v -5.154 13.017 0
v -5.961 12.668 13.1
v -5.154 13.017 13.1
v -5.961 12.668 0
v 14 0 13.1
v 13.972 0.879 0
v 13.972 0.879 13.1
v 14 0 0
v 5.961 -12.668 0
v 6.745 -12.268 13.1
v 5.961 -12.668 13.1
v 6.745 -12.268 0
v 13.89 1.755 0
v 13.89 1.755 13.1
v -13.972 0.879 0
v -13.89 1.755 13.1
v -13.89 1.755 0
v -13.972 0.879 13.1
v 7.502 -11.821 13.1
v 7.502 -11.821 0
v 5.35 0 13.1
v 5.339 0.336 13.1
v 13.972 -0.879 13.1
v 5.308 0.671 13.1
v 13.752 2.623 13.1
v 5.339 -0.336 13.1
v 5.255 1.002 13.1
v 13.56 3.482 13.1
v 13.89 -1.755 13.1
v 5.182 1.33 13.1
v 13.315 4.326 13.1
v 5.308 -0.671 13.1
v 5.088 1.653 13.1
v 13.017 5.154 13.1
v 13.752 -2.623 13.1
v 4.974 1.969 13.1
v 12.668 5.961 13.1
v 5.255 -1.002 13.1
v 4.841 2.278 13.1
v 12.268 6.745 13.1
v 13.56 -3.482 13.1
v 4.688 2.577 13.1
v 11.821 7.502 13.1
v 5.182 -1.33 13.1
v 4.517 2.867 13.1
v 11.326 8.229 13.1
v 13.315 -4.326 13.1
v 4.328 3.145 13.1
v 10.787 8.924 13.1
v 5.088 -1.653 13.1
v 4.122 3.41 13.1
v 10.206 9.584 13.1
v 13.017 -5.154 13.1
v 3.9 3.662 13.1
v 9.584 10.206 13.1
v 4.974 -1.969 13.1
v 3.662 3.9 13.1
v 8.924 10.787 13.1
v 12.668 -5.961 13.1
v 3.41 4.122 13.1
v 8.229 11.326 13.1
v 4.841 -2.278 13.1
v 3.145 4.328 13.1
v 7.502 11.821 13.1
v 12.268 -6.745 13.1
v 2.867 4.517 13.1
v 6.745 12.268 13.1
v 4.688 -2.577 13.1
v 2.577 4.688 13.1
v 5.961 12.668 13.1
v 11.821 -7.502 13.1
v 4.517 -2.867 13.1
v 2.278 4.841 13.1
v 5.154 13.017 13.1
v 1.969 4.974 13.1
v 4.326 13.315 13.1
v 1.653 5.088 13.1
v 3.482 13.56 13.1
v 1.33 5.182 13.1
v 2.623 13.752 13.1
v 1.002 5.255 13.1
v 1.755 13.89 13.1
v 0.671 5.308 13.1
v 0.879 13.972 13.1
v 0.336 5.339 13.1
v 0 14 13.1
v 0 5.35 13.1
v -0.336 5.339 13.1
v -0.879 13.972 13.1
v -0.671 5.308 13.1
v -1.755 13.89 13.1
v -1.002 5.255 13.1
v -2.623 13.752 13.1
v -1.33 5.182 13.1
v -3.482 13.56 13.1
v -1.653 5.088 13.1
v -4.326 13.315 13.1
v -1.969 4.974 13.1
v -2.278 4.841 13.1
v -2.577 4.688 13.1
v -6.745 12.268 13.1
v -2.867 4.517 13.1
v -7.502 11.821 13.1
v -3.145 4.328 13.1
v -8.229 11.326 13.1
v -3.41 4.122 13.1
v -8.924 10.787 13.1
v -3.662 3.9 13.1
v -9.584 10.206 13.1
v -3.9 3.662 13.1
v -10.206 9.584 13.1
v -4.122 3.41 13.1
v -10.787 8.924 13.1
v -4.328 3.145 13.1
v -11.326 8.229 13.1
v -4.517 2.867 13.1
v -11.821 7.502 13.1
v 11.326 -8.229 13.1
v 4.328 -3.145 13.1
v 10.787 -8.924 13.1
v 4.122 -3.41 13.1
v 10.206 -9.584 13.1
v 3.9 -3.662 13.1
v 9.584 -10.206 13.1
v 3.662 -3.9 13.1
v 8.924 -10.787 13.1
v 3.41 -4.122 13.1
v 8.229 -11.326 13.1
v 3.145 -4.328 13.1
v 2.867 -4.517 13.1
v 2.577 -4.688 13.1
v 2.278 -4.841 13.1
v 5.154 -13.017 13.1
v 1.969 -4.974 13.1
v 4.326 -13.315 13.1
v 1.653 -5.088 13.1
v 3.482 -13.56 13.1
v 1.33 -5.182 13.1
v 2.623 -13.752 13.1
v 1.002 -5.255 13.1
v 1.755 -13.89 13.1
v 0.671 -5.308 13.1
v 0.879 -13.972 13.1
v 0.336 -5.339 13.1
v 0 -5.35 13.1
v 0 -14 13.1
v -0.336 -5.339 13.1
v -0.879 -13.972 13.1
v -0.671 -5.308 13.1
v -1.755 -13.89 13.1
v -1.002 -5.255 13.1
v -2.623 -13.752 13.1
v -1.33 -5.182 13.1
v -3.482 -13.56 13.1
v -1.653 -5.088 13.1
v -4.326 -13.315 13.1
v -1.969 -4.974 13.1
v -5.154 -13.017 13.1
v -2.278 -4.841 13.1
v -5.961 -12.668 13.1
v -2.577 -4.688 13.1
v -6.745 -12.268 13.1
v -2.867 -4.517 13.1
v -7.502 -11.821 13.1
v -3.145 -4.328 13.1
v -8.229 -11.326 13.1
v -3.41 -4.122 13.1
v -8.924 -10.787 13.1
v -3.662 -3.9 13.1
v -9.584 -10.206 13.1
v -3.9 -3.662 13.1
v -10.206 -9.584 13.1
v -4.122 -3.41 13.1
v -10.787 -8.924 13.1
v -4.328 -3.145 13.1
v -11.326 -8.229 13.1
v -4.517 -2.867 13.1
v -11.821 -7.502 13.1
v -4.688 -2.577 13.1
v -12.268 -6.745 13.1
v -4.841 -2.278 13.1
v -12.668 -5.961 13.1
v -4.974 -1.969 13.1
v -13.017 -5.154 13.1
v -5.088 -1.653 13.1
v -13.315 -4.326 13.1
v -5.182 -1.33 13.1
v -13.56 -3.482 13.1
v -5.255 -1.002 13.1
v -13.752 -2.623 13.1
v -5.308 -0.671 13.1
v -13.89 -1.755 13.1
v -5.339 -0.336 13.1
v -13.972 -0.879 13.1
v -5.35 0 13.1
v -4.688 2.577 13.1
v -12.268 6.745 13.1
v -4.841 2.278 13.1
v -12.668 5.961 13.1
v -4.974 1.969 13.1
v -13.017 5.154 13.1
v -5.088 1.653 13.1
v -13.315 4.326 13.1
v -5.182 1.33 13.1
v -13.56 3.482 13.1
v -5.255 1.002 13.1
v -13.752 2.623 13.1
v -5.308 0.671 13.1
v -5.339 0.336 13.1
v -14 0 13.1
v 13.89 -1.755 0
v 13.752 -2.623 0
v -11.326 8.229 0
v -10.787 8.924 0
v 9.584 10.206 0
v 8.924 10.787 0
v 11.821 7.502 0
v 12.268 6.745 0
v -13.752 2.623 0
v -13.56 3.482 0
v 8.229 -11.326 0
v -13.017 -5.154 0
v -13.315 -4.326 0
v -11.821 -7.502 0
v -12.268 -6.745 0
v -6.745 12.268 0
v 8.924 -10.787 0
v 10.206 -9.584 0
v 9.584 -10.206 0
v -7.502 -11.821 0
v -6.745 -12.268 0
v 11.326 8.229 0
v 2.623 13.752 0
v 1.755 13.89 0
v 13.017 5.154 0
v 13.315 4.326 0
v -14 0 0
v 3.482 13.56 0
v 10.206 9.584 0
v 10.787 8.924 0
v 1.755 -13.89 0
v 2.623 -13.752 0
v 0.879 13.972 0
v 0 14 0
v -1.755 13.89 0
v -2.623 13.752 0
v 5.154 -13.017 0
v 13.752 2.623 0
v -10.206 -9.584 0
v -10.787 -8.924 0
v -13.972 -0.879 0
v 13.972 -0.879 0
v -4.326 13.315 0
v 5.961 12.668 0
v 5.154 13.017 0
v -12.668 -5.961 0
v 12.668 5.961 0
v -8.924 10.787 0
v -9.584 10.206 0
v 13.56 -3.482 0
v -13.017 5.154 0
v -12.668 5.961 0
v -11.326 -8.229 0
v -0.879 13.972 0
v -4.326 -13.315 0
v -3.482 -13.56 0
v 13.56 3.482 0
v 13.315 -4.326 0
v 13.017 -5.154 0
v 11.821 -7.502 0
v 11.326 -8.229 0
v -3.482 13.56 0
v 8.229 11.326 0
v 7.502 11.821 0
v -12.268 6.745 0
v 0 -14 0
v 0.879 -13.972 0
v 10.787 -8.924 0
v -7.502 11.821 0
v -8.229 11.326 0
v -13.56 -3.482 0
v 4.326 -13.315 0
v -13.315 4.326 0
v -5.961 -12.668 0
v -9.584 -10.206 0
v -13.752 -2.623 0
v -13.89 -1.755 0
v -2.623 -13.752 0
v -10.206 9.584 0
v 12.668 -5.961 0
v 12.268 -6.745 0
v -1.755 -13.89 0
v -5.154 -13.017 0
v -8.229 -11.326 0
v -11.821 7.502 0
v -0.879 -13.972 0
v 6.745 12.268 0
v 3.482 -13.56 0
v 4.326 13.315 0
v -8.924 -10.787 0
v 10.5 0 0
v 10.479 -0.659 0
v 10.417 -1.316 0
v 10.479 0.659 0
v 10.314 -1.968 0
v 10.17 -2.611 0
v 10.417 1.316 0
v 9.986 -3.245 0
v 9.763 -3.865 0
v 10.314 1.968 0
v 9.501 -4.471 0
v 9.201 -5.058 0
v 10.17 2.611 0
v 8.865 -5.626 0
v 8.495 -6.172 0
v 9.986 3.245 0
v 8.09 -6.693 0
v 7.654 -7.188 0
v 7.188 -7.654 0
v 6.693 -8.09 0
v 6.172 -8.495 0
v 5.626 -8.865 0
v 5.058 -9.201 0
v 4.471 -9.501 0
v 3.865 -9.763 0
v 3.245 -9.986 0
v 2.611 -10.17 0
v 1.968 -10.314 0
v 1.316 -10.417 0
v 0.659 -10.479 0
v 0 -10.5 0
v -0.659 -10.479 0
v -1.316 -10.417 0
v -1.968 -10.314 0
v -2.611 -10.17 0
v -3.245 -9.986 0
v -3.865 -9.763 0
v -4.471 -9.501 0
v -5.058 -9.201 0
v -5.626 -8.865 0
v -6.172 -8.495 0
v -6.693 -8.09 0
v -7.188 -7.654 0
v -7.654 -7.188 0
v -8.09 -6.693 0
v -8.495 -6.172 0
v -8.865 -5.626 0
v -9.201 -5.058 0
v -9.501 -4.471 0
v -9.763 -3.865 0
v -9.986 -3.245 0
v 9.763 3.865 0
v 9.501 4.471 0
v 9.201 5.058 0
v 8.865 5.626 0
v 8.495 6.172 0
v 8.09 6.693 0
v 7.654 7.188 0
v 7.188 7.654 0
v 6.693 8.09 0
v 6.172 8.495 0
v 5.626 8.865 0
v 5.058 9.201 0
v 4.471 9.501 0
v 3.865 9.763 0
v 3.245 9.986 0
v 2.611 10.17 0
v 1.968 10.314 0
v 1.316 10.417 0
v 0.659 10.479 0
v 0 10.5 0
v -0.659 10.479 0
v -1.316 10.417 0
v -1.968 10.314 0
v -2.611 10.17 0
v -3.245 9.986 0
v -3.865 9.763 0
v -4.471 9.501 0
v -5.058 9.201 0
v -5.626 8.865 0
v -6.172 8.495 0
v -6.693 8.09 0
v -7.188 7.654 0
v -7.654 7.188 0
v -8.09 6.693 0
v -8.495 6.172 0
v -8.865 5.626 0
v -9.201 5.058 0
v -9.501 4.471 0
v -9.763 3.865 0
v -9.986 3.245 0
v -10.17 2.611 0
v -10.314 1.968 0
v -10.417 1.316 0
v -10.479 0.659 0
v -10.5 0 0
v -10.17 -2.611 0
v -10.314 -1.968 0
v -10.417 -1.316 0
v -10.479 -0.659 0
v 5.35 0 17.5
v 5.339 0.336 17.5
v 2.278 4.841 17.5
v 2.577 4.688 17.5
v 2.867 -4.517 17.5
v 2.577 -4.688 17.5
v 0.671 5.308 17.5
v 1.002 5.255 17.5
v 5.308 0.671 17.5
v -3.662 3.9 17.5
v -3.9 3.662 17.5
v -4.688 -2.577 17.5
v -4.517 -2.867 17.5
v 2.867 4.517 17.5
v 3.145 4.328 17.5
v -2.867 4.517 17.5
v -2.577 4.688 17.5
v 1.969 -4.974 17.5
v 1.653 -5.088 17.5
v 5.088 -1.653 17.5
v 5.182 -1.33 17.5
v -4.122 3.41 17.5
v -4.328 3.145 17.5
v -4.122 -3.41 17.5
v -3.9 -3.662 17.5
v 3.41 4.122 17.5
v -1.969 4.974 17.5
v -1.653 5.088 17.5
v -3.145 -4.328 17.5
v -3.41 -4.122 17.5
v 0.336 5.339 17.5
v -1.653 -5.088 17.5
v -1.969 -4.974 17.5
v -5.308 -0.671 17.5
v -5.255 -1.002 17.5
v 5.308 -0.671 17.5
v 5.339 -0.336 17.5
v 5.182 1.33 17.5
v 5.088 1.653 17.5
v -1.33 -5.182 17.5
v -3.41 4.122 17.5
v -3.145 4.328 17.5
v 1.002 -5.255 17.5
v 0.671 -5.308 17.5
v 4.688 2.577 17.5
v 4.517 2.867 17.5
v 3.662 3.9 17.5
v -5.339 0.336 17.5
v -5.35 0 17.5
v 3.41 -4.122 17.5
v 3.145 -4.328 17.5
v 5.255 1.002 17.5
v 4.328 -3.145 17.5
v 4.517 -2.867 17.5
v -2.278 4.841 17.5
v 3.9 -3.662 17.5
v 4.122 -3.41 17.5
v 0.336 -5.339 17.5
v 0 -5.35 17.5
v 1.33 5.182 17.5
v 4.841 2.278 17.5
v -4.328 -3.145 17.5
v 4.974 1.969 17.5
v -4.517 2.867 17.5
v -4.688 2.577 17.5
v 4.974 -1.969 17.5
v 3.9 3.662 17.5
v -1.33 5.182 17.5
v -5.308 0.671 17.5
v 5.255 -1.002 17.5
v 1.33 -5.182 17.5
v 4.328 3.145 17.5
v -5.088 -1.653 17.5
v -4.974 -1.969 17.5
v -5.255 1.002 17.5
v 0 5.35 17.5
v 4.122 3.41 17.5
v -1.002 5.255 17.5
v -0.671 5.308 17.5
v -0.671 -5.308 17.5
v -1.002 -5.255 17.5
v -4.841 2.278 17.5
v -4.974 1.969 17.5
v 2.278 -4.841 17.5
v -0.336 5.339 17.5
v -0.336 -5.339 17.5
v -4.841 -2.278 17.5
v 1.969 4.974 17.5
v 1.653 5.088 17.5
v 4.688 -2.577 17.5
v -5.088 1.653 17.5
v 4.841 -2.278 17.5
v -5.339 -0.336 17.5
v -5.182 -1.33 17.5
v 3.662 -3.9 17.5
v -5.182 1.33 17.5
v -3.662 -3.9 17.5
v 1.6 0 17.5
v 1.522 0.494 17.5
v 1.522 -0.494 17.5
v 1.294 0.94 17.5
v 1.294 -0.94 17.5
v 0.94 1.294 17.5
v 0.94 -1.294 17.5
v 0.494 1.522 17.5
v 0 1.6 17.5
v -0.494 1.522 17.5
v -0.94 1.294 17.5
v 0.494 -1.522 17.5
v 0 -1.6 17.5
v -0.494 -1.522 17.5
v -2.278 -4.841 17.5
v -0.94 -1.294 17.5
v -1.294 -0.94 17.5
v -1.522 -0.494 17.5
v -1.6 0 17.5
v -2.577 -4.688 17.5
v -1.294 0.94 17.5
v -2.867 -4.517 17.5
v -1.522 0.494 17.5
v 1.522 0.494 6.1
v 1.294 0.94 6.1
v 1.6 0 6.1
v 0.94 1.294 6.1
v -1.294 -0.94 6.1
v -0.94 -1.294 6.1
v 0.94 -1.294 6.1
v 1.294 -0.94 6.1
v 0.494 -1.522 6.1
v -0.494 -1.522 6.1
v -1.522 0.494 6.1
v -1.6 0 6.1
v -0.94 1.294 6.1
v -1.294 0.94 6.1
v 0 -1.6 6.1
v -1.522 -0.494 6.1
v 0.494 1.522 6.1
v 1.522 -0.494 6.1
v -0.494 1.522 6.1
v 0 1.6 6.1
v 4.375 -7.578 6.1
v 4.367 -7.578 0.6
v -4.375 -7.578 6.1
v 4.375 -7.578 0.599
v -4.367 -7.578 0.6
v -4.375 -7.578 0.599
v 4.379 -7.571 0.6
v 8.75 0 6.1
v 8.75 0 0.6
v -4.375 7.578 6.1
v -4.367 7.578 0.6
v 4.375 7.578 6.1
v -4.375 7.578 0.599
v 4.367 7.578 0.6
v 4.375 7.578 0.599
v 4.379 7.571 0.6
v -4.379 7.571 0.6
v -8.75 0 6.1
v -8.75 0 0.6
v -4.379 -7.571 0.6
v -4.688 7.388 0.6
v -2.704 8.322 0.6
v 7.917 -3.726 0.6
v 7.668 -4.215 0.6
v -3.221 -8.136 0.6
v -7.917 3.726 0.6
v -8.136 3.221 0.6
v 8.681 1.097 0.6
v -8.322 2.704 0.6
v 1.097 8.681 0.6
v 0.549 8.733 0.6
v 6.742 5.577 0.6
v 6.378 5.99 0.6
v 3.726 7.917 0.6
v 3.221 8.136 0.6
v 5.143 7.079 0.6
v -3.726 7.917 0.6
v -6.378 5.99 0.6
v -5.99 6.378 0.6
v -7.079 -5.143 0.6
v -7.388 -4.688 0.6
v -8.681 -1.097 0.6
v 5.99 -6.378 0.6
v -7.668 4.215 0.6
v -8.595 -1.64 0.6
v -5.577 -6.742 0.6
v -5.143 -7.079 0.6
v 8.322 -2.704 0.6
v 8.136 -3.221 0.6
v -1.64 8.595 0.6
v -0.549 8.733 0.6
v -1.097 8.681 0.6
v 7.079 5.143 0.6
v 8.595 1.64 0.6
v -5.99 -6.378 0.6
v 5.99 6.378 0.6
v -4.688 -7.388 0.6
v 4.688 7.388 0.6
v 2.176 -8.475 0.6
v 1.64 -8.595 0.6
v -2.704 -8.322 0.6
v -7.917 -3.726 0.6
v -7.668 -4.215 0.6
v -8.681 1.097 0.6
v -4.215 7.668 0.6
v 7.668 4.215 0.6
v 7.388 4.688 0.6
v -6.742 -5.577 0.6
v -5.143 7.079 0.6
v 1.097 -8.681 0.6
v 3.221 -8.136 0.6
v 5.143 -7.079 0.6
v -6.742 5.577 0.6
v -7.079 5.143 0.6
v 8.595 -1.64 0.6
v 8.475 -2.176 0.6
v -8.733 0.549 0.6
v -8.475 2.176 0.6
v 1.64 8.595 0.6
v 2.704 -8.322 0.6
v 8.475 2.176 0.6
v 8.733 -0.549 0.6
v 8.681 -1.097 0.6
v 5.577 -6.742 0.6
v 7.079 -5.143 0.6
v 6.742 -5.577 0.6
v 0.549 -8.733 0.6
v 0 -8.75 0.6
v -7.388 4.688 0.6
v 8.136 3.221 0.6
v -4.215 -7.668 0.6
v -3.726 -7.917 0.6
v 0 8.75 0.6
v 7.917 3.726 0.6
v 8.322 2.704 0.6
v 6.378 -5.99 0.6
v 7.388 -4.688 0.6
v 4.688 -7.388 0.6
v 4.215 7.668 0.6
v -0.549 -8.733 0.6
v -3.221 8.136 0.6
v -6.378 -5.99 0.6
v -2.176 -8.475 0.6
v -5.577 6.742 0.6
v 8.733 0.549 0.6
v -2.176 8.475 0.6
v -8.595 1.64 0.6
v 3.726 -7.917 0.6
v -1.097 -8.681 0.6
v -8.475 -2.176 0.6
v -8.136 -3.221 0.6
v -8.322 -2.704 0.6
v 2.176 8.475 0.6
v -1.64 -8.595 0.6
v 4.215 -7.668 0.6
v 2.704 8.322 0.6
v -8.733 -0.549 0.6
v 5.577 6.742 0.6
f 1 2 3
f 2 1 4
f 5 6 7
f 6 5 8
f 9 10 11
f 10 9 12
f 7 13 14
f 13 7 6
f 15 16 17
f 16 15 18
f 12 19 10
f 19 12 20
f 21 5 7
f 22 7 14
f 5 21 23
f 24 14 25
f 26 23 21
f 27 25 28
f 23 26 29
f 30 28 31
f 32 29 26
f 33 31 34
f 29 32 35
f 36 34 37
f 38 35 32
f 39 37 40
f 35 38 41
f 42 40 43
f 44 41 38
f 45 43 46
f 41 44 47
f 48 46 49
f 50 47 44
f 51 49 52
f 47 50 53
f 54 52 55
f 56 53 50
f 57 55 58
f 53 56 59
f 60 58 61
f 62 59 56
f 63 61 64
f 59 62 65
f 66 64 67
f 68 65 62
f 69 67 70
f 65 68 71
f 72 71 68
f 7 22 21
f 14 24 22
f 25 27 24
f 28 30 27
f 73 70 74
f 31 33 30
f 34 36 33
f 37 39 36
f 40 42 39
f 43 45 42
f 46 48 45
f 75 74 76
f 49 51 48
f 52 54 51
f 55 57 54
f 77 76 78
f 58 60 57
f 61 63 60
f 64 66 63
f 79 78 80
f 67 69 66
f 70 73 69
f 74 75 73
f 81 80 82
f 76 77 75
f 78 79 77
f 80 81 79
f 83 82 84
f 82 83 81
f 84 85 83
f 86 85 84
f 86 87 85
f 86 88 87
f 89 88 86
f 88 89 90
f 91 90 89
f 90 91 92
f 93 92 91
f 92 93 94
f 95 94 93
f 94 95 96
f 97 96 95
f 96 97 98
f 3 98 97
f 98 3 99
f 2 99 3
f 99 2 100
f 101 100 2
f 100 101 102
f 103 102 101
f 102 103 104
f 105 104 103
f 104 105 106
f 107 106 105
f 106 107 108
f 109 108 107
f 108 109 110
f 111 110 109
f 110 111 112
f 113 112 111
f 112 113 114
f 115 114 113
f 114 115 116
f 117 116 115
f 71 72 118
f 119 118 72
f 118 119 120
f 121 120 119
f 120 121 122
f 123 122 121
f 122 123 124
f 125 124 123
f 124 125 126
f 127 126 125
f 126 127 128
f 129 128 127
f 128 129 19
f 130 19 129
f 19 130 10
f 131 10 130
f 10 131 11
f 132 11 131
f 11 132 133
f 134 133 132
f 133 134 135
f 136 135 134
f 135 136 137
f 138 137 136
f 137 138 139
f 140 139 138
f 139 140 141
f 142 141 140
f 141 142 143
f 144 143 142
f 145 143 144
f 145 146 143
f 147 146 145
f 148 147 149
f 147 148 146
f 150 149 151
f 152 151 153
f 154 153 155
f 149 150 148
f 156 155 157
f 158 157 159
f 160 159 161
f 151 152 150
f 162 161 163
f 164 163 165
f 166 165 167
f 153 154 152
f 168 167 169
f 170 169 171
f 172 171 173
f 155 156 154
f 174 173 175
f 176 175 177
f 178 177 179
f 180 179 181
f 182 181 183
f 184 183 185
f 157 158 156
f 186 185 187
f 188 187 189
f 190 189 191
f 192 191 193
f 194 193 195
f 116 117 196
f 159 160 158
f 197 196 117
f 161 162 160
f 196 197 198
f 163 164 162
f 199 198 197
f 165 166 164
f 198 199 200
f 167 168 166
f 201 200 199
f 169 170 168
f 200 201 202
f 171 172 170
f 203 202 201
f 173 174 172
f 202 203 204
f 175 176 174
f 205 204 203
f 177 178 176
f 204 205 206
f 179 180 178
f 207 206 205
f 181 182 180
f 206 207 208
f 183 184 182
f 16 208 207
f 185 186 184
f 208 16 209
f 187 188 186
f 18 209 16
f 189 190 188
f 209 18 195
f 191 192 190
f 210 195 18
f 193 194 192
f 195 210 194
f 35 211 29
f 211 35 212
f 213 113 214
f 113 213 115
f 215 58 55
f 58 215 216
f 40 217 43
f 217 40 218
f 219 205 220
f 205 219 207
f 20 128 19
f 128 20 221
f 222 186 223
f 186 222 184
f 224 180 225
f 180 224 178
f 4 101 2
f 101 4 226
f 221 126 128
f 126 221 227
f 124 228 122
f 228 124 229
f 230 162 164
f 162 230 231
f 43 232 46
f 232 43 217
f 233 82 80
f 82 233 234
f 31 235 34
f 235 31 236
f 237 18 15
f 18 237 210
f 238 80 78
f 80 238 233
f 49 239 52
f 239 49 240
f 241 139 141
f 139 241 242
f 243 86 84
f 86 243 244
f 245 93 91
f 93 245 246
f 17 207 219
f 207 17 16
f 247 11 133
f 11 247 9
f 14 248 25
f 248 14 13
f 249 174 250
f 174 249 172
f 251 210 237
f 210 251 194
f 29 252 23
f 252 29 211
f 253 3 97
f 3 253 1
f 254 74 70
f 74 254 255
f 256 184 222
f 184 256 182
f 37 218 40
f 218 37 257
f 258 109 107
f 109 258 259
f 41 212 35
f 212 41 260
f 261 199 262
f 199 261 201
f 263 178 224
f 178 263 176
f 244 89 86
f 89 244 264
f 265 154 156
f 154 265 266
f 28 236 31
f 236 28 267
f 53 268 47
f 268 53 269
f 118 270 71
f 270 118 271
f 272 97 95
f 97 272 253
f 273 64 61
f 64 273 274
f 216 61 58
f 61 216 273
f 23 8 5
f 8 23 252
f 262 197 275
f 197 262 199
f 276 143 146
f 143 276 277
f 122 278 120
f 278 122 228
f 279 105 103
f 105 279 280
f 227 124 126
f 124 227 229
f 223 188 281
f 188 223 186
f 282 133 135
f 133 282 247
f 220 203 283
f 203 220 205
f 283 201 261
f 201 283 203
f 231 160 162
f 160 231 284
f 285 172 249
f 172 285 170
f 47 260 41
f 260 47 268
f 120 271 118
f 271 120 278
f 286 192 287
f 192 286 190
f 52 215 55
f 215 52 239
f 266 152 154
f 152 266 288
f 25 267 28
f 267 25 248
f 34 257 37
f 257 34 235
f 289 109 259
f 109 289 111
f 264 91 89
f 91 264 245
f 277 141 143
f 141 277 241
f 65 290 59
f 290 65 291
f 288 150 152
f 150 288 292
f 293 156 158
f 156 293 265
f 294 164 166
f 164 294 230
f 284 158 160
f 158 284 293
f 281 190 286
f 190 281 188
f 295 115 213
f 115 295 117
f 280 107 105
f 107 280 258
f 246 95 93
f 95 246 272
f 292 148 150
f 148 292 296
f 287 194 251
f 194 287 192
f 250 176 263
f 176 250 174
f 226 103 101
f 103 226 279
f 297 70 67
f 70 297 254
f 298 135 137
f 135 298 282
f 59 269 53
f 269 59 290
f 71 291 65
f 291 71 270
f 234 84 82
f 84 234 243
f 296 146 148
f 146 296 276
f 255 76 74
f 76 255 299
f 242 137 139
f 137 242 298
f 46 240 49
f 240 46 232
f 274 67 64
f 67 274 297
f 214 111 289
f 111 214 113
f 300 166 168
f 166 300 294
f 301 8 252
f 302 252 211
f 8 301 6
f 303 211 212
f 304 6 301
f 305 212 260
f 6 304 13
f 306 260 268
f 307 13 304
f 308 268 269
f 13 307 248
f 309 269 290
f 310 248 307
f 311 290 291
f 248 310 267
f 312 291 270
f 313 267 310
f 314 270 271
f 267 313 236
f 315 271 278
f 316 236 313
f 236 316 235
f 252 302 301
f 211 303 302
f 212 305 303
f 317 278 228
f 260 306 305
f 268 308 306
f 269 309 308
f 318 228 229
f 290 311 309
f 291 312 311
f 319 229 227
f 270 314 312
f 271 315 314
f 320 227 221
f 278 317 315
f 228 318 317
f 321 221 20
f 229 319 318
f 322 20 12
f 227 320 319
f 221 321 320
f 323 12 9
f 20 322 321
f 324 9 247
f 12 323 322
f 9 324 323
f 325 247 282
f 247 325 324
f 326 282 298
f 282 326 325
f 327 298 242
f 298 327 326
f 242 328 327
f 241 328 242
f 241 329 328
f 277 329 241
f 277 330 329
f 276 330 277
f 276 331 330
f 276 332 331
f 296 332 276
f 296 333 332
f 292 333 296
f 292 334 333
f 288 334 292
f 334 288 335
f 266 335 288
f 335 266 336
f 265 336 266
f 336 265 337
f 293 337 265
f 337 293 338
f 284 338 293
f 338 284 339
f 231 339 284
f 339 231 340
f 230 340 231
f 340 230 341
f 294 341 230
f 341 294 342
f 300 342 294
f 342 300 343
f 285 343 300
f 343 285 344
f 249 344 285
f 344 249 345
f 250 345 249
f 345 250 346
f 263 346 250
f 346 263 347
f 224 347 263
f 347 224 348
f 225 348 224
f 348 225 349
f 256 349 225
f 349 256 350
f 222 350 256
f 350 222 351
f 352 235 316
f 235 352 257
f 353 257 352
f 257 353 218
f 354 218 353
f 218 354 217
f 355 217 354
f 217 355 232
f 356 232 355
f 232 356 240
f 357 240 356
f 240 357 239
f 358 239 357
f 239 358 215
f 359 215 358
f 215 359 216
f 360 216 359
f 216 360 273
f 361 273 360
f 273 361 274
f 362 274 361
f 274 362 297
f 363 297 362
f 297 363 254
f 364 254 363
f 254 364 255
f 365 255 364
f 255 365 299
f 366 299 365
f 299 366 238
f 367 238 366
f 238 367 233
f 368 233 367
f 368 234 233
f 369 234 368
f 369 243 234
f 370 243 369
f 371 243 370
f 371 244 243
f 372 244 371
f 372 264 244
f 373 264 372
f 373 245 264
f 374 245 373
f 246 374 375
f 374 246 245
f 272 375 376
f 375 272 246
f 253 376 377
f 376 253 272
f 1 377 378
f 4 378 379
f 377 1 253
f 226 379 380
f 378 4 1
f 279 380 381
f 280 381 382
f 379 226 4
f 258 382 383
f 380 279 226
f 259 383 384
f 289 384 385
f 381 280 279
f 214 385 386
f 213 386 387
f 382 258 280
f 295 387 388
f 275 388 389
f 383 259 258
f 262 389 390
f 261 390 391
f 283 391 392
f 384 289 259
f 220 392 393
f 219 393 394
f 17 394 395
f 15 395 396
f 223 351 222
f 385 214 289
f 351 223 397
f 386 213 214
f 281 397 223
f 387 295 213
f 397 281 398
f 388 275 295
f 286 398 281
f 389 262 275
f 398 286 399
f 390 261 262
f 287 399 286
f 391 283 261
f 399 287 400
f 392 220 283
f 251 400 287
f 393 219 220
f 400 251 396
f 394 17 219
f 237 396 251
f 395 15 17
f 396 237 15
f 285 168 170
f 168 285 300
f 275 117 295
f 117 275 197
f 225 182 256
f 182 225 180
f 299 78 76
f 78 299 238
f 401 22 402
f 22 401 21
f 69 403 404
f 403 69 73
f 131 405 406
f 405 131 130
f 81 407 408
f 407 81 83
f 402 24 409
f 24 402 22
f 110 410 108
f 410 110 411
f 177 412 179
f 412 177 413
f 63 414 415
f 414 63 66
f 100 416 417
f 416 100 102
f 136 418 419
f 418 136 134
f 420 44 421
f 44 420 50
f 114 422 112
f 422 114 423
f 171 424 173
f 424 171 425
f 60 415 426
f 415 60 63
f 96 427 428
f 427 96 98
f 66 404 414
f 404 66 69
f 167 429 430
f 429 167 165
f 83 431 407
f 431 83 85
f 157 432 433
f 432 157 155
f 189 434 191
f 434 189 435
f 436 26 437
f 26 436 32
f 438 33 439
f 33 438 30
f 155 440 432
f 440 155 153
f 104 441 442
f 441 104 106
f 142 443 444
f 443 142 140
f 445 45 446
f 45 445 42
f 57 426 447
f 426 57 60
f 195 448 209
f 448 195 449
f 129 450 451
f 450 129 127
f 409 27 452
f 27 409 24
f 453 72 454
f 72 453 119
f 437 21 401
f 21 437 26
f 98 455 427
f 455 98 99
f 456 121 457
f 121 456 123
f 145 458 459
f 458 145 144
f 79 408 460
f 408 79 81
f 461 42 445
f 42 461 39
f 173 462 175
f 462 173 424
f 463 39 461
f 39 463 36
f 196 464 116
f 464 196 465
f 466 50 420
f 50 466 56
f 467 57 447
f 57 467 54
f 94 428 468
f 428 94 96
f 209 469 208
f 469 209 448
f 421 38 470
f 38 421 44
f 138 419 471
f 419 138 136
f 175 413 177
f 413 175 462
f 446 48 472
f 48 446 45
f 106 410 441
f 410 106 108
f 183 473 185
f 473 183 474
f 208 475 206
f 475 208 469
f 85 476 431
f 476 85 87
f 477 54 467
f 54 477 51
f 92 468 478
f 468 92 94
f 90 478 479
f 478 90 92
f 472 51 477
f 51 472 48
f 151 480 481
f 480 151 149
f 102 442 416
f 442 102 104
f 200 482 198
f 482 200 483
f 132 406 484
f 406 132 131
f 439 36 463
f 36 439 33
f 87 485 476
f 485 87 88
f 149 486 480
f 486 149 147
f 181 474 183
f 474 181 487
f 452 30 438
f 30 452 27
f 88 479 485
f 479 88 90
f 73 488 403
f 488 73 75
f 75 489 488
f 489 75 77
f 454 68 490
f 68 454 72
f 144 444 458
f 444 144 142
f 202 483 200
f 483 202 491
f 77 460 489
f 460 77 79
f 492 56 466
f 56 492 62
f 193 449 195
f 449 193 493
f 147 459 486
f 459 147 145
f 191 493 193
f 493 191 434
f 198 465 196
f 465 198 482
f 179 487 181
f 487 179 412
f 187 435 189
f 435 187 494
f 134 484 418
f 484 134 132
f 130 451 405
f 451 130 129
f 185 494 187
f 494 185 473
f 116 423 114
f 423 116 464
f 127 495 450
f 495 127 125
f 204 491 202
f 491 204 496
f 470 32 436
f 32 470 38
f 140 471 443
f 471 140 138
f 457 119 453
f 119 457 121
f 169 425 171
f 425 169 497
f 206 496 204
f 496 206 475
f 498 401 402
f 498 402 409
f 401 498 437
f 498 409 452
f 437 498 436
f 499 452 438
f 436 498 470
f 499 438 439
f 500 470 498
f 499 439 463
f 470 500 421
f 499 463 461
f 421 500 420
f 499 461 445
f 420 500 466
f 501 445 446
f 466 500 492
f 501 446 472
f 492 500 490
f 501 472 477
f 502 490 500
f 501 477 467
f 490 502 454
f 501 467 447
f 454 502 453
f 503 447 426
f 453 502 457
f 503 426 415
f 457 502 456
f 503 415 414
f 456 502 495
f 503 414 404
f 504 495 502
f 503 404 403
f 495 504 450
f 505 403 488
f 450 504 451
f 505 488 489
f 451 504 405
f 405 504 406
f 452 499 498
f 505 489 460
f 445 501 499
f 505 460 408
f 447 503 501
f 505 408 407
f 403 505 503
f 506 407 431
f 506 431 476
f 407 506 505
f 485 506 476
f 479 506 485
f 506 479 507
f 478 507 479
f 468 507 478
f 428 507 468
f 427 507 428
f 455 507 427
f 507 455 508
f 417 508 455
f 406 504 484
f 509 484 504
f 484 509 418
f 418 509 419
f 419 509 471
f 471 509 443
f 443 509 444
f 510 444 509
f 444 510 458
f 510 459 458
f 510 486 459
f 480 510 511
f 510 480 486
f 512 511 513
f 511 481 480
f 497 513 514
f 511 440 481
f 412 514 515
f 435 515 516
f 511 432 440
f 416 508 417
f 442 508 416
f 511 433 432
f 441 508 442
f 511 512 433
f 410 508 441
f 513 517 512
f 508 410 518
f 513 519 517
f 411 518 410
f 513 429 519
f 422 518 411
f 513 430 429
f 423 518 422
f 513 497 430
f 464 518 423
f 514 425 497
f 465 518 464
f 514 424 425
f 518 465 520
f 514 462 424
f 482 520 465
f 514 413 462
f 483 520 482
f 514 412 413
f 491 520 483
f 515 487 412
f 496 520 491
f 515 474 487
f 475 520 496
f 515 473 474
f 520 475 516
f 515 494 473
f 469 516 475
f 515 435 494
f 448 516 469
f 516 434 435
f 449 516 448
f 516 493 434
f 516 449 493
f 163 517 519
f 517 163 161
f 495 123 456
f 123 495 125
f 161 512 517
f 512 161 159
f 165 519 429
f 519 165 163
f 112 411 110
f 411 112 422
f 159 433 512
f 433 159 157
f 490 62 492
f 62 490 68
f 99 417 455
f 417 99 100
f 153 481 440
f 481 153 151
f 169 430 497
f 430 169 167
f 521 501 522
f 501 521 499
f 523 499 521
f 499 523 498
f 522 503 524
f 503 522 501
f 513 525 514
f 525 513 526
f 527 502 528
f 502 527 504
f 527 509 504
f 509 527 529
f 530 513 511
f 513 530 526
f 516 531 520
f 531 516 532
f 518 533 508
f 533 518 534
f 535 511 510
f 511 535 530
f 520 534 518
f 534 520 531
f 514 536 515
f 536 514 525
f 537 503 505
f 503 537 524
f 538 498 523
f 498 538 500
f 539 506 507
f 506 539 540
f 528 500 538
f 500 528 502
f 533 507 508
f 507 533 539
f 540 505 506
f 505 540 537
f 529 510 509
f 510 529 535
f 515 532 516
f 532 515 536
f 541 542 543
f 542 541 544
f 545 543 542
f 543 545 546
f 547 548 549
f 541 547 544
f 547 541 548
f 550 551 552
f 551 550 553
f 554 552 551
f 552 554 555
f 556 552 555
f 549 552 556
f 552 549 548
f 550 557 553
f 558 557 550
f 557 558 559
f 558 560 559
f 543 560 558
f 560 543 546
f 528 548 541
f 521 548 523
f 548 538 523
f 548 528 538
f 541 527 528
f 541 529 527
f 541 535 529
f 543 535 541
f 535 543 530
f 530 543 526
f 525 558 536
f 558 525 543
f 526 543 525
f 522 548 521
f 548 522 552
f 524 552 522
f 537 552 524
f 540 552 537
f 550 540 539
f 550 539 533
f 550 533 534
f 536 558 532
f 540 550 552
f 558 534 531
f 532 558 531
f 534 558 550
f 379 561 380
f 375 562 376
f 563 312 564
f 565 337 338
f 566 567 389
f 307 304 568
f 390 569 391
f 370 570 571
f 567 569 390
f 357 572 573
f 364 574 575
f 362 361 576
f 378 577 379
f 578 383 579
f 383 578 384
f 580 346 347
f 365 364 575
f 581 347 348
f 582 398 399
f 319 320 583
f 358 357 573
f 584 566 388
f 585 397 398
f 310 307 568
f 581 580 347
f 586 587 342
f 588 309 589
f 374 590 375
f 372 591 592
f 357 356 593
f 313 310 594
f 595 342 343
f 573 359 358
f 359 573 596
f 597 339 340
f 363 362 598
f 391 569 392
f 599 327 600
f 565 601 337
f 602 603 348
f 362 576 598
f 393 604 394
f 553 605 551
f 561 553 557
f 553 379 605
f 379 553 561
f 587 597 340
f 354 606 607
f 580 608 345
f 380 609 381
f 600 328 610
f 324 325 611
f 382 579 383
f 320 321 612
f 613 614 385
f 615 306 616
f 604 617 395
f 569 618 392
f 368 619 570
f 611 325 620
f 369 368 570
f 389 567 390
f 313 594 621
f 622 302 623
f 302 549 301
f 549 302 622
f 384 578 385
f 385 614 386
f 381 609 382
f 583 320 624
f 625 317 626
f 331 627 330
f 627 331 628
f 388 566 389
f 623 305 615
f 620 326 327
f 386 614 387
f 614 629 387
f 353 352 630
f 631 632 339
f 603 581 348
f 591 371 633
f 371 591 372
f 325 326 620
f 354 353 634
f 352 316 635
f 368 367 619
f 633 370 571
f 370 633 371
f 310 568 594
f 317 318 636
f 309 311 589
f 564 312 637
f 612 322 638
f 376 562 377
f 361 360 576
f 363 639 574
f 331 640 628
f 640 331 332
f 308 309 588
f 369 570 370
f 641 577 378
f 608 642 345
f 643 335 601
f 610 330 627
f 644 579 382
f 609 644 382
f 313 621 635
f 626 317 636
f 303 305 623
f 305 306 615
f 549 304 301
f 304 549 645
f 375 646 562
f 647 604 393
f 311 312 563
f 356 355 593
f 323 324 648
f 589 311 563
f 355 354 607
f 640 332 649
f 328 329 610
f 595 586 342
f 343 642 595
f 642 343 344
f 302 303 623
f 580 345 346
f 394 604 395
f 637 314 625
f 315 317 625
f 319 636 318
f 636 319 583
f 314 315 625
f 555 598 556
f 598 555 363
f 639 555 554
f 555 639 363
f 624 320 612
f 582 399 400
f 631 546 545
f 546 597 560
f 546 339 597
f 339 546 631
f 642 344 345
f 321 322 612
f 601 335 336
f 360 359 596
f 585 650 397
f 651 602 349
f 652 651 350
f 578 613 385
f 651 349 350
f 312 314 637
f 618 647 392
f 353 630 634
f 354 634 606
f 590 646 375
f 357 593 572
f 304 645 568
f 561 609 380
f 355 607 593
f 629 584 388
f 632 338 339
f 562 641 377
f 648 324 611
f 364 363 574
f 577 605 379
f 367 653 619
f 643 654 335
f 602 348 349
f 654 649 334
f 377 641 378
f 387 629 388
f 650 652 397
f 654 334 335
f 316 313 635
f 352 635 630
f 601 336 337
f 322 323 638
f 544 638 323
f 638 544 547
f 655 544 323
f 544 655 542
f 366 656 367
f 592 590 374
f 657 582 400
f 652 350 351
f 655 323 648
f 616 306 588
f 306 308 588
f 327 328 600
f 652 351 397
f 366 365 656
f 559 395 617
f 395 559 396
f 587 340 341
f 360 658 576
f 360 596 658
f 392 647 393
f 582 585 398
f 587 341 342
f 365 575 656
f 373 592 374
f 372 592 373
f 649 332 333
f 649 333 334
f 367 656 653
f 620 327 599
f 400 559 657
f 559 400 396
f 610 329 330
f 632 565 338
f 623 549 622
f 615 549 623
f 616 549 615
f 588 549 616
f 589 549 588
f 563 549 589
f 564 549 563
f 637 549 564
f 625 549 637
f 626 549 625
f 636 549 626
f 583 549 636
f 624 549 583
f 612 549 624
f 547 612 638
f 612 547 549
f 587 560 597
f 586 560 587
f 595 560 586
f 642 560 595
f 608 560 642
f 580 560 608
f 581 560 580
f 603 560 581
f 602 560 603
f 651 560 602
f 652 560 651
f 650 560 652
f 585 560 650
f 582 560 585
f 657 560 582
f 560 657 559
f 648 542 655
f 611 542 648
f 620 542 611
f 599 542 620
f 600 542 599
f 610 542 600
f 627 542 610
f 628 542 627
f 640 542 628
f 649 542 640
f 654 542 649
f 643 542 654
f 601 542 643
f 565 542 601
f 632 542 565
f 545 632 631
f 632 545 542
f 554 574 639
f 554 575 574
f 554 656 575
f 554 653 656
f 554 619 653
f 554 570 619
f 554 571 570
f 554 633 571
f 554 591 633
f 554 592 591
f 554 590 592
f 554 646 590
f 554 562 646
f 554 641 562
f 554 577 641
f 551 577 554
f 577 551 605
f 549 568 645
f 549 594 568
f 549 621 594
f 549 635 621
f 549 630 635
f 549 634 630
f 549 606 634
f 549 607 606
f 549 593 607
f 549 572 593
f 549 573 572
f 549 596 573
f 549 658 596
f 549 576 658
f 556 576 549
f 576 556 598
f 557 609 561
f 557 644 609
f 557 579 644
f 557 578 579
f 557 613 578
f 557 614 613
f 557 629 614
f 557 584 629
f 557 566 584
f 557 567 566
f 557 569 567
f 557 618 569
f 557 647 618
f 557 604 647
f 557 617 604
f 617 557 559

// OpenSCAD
external_diameter=28;
extension_lenght=7;
base_nut_height=6.1;
base_nut_diameter=17.5;
screw_diameter=3.2;
hitch_thickness=4.4;
hitch_hole_diameter=10.7;
$fn=100;

difference(){
  union(){
    cylinder(d=external_diameter, h=extension_lenght+base_nut_height);
    translate([0,0,extension_lenght+base_nut_height]) cylinder(d=hitch_hole_diameter, h=hitch_thickness);
  }
  cylinder(d=screw_diameter, h=extension_lenght+base_nut_height+hitch_thickness,$fn=20);
  cylinder(d=base_nut_diameter, h=base_nut_height, $fn=6);
  cylinder(d1=21, d2=base_nut_diameter, h=0.6);
}
